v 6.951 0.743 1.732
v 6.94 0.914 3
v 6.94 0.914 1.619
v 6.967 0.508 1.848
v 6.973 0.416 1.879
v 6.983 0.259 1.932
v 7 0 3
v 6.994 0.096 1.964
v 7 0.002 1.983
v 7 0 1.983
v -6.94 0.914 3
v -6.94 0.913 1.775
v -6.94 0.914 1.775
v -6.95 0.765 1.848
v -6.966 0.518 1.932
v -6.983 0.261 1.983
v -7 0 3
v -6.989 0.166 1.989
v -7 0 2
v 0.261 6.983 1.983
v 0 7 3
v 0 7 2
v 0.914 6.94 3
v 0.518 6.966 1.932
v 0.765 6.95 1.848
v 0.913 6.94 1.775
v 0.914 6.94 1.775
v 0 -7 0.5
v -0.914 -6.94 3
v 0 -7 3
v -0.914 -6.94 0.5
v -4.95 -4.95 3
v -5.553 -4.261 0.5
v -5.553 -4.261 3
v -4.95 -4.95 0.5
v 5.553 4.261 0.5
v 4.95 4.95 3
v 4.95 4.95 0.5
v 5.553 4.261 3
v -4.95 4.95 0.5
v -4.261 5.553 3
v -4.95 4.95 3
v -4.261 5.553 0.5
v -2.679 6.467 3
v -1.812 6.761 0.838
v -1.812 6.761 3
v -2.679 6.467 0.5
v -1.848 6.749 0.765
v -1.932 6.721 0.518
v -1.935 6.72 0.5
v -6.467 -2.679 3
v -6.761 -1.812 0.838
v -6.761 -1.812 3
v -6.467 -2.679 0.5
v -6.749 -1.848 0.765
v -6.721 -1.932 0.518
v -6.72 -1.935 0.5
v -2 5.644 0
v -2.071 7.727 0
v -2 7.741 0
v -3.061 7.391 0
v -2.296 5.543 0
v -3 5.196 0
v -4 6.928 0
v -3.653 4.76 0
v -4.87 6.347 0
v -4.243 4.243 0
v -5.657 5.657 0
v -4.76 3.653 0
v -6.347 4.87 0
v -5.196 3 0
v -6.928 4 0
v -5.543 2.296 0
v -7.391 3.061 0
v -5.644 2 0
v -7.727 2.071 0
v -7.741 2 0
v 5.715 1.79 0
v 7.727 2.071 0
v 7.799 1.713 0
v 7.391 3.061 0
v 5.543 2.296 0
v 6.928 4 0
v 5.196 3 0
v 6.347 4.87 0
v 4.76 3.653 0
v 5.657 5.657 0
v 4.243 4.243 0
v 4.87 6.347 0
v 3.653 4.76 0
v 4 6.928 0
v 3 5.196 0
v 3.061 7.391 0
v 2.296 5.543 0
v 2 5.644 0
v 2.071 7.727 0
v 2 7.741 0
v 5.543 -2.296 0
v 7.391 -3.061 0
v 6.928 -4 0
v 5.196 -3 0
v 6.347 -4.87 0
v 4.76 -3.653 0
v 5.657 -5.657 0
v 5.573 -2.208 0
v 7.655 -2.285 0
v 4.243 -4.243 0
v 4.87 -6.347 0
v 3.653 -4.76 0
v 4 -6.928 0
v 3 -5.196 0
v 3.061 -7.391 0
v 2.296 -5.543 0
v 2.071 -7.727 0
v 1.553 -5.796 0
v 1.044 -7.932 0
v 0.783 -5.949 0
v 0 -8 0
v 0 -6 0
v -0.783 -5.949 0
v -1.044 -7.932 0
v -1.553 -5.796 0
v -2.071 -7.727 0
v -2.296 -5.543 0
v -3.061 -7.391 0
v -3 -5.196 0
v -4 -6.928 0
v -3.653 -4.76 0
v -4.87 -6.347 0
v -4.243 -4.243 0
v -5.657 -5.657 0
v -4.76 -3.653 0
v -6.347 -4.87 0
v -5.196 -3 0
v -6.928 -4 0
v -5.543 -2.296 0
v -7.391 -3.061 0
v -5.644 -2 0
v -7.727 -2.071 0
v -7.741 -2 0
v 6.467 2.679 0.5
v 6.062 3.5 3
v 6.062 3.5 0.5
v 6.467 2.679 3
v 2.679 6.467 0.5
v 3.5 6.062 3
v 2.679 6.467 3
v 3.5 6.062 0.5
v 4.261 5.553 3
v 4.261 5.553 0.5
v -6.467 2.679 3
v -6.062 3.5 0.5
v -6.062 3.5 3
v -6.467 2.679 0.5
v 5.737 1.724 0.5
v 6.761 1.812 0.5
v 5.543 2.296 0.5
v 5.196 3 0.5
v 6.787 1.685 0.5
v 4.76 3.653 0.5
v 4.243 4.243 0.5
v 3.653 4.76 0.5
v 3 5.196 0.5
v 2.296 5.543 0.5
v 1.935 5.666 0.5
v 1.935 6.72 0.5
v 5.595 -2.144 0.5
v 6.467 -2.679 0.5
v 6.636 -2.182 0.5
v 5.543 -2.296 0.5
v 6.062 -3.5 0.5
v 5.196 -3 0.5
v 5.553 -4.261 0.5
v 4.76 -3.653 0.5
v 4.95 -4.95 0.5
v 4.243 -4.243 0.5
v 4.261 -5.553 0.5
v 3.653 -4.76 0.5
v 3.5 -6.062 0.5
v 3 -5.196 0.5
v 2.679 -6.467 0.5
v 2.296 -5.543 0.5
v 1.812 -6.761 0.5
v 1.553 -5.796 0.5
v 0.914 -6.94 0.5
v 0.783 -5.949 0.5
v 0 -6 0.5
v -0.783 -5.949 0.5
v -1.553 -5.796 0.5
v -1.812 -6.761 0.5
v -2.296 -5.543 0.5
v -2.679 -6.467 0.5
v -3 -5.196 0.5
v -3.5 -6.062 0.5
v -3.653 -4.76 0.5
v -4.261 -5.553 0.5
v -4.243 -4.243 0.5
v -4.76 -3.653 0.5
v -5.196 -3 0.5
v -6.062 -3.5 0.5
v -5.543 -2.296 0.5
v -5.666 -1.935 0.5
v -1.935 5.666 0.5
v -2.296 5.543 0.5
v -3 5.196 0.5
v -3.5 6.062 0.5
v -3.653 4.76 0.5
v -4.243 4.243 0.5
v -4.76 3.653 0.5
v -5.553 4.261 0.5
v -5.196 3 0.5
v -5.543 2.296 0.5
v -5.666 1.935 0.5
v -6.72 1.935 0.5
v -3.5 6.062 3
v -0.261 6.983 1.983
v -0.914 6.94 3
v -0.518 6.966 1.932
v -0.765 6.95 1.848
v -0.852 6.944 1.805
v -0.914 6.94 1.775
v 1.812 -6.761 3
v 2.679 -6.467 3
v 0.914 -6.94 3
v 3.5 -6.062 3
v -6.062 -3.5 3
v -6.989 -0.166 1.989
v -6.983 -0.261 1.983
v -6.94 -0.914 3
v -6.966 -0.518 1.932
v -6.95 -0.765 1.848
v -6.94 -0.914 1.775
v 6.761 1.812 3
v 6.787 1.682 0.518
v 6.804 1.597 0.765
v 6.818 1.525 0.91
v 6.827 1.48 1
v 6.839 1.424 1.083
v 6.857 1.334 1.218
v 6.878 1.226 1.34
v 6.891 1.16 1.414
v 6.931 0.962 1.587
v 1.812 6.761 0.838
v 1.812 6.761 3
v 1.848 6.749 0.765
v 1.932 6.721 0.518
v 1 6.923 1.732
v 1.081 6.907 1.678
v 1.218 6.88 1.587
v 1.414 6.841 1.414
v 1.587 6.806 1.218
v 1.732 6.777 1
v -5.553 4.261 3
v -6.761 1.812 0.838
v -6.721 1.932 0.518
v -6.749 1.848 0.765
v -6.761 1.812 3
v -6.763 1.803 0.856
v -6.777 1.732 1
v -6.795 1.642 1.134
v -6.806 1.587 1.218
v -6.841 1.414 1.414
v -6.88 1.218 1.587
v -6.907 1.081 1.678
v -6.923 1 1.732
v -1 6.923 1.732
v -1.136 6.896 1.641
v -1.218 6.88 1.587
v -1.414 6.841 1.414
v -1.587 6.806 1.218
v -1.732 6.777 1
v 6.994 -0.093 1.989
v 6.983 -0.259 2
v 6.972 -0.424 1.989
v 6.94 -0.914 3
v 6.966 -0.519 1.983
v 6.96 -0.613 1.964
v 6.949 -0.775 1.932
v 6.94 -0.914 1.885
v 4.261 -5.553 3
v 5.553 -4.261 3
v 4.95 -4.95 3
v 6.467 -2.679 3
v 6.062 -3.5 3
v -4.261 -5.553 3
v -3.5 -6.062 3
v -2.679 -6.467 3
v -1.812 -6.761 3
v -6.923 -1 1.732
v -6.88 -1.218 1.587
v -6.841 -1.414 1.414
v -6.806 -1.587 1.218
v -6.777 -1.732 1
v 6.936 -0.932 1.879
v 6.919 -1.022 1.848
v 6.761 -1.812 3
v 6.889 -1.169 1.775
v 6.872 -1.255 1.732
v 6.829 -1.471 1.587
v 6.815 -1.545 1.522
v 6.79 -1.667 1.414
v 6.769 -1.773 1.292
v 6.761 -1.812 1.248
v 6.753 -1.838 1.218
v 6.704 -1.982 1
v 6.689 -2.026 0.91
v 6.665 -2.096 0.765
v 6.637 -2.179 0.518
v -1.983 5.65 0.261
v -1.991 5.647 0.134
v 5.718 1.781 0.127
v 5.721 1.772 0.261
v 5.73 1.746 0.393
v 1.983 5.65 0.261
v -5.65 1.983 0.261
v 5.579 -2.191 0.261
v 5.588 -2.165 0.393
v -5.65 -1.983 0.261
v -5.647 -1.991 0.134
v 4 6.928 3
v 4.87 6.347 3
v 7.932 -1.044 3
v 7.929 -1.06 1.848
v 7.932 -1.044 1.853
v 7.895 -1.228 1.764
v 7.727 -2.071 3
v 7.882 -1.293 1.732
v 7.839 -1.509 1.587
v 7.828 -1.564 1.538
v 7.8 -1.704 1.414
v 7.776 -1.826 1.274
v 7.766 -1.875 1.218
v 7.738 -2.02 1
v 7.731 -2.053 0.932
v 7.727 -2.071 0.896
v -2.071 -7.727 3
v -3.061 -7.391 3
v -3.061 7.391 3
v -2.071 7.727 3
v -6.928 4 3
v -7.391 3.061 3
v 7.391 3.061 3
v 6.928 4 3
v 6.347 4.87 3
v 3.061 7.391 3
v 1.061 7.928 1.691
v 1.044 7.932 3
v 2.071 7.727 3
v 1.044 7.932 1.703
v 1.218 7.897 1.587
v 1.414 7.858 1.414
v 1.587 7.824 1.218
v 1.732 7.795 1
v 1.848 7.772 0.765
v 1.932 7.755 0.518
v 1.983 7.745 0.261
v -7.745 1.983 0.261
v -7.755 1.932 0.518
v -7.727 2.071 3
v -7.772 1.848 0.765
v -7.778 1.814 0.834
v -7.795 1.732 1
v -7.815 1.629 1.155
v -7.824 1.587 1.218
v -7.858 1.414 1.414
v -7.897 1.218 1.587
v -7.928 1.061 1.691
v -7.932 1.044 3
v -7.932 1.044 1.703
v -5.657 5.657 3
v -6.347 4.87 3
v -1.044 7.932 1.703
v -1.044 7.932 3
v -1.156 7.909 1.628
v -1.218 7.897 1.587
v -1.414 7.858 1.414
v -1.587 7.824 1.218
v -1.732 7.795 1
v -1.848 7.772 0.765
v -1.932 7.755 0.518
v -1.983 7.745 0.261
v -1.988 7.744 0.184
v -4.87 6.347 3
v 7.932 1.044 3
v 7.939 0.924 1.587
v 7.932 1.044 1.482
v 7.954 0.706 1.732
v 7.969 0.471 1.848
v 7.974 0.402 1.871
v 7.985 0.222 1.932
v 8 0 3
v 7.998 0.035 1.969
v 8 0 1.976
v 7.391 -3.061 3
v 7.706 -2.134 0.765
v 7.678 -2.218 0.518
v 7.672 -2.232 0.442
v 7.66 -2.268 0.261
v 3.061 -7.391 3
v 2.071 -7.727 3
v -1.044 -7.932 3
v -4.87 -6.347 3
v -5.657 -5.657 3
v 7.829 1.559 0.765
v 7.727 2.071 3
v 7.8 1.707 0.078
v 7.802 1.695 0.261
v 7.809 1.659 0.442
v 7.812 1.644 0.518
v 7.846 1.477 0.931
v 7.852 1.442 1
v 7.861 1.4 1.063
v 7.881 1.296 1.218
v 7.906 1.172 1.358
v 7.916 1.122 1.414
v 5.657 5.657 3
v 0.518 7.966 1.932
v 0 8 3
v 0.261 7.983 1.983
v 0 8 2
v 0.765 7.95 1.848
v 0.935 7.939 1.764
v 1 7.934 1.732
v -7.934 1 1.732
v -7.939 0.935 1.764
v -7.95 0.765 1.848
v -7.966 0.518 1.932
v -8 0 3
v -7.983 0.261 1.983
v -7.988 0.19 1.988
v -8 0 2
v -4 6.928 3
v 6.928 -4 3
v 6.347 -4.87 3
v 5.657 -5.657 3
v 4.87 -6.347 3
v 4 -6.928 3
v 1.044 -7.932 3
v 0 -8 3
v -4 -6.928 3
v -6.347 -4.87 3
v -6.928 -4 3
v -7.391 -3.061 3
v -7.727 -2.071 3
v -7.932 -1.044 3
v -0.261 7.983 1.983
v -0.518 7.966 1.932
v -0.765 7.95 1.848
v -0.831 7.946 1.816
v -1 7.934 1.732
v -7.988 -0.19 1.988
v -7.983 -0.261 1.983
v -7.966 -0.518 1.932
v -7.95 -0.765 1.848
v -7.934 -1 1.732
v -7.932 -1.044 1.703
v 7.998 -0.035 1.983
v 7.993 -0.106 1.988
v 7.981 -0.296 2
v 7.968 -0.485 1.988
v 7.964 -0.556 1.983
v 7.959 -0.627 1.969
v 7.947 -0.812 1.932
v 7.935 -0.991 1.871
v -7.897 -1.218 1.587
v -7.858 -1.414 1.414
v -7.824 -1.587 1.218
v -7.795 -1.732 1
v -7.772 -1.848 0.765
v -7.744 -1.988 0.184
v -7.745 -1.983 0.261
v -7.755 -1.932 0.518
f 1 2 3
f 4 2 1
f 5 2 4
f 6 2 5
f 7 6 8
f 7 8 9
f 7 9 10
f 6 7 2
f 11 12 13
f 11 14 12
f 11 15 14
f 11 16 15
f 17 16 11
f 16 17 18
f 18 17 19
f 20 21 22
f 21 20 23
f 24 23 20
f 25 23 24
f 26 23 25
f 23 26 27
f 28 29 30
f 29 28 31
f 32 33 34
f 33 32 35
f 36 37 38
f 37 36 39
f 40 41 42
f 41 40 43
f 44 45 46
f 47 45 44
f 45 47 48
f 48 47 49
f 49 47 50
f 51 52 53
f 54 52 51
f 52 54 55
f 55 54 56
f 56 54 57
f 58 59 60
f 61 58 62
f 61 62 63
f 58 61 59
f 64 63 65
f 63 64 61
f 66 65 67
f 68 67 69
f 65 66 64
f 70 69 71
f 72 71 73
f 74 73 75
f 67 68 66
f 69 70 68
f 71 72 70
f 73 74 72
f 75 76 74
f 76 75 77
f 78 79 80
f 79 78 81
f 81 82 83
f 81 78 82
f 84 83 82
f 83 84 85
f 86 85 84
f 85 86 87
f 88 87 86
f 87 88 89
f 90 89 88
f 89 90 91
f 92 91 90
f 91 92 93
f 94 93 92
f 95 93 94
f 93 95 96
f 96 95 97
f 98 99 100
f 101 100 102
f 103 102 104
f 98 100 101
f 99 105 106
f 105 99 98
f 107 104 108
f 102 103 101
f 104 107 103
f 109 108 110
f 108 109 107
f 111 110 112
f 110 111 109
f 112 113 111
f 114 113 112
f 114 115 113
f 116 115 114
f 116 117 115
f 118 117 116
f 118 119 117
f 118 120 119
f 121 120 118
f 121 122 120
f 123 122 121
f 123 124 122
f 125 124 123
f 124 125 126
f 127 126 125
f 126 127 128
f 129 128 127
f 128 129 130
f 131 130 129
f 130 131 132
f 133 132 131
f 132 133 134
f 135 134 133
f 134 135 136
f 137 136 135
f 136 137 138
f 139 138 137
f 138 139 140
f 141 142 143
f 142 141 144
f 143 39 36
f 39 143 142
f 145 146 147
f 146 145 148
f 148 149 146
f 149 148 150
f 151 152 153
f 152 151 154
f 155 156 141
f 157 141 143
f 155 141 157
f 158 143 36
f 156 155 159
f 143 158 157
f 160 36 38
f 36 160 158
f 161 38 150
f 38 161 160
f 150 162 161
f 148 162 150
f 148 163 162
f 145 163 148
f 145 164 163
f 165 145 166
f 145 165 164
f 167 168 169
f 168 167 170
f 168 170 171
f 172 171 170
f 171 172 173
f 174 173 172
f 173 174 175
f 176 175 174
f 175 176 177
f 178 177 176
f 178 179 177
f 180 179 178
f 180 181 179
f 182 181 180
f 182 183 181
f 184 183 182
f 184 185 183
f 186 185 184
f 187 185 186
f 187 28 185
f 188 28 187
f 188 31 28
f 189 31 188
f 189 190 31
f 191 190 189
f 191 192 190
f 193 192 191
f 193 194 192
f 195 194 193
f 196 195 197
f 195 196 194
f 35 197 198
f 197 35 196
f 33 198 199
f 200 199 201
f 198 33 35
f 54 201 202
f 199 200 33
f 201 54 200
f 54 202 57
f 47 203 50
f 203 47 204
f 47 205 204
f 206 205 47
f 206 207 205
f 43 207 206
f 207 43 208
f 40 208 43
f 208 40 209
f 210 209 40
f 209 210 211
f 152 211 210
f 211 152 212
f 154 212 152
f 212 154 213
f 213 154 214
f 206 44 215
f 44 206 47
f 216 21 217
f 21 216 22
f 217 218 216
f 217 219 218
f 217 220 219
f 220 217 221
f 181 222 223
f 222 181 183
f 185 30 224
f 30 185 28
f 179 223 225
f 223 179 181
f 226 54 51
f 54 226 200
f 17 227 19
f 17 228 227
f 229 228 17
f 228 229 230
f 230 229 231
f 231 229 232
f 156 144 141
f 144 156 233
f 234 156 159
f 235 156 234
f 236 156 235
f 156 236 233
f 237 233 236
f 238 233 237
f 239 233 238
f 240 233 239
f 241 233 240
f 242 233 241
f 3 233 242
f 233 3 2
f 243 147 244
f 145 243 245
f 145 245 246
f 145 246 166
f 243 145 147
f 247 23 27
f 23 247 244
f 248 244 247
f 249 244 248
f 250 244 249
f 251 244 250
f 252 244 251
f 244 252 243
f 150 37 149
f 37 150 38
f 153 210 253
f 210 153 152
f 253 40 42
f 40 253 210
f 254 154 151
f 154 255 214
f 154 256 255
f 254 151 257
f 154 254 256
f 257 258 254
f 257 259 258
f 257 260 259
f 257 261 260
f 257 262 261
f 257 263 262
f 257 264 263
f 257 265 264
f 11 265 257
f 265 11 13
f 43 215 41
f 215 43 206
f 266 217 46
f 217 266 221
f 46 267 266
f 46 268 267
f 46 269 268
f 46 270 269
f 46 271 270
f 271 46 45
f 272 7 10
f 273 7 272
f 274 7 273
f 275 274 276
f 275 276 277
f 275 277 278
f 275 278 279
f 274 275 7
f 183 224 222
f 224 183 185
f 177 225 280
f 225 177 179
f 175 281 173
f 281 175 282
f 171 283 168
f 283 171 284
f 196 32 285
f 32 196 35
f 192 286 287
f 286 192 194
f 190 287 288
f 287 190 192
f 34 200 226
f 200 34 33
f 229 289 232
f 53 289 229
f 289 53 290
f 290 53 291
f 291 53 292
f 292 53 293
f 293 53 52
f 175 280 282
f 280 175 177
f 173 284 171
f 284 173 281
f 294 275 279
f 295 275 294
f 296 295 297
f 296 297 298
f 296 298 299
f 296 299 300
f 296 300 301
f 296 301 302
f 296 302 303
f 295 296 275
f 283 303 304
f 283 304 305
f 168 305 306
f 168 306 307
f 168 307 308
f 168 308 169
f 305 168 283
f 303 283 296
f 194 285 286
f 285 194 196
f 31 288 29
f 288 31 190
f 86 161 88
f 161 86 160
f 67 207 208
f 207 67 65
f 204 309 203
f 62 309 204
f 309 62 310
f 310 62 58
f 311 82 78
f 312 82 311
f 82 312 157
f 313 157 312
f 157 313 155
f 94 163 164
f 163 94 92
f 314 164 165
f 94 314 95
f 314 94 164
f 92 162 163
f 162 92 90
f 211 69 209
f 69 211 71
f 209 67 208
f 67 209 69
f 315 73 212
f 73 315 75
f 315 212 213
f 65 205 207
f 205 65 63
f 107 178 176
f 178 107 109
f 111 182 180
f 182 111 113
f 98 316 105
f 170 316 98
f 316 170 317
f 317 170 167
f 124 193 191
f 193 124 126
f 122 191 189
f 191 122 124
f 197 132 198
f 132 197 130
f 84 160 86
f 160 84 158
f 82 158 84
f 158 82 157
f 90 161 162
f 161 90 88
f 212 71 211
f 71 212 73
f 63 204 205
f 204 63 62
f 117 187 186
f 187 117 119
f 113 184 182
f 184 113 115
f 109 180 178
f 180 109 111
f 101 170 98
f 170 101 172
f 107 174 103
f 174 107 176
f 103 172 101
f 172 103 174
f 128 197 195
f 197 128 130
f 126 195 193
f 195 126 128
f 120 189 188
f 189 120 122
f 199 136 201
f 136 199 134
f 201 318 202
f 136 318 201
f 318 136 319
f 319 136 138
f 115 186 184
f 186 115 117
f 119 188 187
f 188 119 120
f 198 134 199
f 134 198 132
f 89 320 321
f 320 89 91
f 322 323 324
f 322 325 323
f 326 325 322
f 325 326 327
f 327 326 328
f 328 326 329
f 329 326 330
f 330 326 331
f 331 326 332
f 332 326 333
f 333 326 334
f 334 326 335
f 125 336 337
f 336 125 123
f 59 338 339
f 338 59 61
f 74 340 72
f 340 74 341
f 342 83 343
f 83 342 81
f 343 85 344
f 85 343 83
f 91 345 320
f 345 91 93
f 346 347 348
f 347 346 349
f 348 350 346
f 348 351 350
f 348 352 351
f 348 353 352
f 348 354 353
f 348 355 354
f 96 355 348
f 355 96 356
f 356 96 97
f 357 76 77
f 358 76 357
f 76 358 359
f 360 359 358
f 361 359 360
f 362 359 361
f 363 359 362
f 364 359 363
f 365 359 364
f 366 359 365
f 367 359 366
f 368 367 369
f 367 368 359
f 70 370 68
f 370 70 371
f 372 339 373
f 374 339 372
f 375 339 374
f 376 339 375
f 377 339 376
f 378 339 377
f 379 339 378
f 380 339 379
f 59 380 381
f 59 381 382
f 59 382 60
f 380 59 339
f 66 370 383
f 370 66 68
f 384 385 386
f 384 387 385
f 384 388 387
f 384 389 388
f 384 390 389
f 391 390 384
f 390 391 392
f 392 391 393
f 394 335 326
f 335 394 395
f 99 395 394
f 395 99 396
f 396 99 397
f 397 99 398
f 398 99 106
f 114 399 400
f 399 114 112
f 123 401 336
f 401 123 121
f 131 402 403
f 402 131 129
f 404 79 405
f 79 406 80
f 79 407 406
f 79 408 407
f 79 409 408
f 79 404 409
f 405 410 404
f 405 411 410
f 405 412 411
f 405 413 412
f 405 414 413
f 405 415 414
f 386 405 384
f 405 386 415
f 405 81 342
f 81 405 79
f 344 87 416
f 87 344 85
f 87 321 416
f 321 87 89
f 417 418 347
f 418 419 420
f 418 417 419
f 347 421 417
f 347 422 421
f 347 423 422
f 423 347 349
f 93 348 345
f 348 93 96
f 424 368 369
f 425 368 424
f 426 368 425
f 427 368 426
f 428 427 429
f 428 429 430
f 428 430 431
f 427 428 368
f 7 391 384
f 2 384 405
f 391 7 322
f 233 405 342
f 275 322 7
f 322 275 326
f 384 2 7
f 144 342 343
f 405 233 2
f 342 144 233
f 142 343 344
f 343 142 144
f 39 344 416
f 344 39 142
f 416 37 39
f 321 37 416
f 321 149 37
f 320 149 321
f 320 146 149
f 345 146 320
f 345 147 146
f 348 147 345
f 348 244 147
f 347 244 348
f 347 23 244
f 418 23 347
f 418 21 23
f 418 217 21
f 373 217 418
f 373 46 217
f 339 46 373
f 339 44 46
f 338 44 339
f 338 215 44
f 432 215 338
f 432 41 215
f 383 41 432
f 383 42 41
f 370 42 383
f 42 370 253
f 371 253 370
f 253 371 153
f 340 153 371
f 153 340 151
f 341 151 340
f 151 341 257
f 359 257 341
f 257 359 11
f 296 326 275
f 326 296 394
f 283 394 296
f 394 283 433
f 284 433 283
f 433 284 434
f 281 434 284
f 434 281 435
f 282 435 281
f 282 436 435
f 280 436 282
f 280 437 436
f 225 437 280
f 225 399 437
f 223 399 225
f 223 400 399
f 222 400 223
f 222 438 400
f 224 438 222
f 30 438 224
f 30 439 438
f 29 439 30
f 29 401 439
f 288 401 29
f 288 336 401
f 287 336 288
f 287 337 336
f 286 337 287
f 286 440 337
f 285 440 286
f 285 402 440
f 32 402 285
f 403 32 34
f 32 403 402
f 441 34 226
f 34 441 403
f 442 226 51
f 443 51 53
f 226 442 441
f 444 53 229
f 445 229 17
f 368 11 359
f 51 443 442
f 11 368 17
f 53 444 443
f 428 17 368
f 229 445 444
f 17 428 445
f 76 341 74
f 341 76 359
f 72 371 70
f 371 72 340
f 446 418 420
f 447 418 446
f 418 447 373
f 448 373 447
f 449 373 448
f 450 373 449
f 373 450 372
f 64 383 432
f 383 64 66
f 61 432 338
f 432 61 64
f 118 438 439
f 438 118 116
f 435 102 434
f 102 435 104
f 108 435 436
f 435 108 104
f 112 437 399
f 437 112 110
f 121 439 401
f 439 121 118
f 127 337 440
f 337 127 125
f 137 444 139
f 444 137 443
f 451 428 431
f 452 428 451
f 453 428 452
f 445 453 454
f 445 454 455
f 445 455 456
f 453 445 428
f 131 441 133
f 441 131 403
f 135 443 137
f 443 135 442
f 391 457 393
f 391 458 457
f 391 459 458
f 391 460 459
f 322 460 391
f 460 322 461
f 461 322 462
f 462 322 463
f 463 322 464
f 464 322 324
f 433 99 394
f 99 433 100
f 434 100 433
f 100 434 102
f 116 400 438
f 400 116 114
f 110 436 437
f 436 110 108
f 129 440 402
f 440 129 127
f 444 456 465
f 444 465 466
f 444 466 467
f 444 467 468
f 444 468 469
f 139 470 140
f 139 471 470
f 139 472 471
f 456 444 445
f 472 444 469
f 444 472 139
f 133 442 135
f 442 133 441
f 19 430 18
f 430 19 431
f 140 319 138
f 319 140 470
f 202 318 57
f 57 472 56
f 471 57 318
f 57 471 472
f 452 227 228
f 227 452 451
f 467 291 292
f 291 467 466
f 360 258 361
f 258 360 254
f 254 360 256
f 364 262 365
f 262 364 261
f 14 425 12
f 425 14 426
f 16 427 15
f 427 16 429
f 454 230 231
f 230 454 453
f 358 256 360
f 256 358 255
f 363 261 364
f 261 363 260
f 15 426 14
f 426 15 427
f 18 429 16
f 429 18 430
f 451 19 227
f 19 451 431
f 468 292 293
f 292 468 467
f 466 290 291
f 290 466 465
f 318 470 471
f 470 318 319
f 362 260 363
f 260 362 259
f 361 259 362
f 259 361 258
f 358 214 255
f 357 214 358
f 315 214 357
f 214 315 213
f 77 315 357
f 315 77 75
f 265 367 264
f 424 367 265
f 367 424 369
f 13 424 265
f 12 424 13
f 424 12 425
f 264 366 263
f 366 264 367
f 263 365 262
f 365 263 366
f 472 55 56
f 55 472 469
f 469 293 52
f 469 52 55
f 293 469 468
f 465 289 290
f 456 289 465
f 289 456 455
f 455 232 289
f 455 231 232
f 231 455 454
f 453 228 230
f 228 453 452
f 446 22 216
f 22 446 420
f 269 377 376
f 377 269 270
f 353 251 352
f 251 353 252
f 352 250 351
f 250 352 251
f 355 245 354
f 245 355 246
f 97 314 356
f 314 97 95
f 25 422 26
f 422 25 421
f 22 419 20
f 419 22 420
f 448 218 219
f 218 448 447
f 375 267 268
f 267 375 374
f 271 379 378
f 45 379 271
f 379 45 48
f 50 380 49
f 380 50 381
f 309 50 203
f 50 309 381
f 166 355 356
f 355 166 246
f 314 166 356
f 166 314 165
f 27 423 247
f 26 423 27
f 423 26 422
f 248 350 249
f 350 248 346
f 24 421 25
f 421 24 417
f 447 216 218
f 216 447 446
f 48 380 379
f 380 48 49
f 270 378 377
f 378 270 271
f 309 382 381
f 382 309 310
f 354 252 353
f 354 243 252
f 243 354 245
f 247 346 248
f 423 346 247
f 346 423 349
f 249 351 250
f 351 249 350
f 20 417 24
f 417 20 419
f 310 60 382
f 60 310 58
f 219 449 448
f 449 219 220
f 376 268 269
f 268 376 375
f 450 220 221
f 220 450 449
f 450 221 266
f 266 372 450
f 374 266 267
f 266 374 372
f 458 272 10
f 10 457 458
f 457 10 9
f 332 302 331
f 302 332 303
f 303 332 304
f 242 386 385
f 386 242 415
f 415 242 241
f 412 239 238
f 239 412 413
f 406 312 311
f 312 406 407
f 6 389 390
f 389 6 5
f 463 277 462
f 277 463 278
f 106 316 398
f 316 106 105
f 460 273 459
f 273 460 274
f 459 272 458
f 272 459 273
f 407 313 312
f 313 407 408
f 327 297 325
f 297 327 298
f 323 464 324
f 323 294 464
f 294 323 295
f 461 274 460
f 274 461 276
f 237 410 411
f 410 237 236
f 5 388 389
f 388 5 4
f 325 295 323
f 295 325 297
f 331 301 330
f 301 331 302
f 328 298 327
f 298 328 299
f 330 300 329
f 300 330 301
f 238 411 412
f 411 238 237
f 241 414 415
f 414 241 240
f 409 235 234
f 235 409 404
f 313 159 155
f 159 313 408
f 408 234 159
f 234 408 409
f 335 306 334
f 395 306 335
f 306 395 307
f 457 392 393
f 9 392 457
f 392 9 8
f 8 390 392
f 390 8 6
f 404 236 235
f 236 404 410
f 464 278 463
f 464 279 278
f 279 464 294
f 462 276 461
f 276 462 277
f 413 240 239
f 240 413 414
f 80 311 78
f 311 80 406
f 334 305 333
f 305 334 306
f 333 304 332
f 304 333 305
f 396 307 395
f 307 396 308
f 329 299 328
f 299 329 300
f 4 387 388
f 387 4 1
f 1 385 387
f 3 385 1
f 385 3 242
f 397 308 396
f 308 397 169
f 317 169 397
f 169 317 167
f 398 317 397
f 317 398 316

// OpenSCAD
// file: ../build_environments.scad
// build_environments.scad: modules to build level sections
//

module pool(diameter=10.0, wall_height=2.0, step_width=3.0, connections=[])
{
    difference() {
        union() {
        difference() {
            cylinder(h=0.5,r1=diameter+step_width,r2=diameter+step_width,$fn=48);
            translate([0,0,-0.1])
                cylinder(h=0.7,r1=diameter,r2=diameter,$fn=48);
        }
        difference() {
            cylinder(h=wall_height,r1=diameter+step_width+1.0,r2=diameter+step_width+1.0,$fn=48);
            translate([0,0,-0.1])
                cylinder(h=wall_height+0.2,r1=diameter+step_width,r2=diameter+step_width,$fn=48);
        }
        }
    
        for (c = connections)
        {
            rotate([0,90,0]) {
                angle = atan2(c[1],c[0]);
                rotate([-angle,0,0]) {
                    cylinder(h=diameter+5.0,r1=c[2],r2=c[2],$fn=48);
                }
            }
        }
    }
}

module straight(length=10.0, width=2.0, dy1=0.0, dy2=0.0, dz=0.0)
{
    dims = [0, 0, 0, 0, 0, (dz/length)];
    matrix = [
        [ 1, dims[0], dims[1], 0 ],
        [ dims[2], 1, dims[4], 0 ],
        [ dims[5], dims[3], 1, 0 ],
        [ 0, 0, 0, 1 ]
    ];
    multmatrix(matrix)
    difference() {
        translate([dy1,0,0])
        union() {
            rotate([0,90,0]) {
                difference() {
                    cylinder(h=(length-dy1-dy2),r1=width+1.0,r2=width+1.0,$fn=24);
                    translate([0,0,-0.1])
                        cylinder(h=(length-dy1-dy2+0.2),r1=width,r2=width,$fn=24);
                }
                difference() {
                    cylinder(h=1.0,r1=width+2.0,r2=width+2.0,$fn=24);
                    translate([0,0,-0.1])
                        cylinder(h=1.2,r1=width,r2=width,$fn=24);
                }
                translate([0,0,(length-dy1-dy2)-1.0]) {
                    difference() {
                        cylinder(h=1.0,r1=width+2.0,r2=width+2.0,$fn=24);
                        translate([0,0,-0.1])
                            cylinder(h=1.2,r1=width,r2=width,$fn=24);
                    }
                }
            }
        }
        translate([0,0,-(2*width+4.0)/2])
            cube([3*length,3*length,2*width+4.0],center=true);
    }
}

module curve(p0=[0,0], center=[0,0], dir=1, angle=0.0, width=2.0)
{
    radius = sqrt((p0[0]-center[0])*(p0[0]-center[0]) + (p0[1]-center[1])*(p0[1]-center[1]));
    if (dir == 0) {
        difference() {
            rotate([0,0,-90])
            difference() {
                rotate_extrude(angle = angle, convexity = 10, $fn=32)
                    translate([radius, 0, 0])
                        circle(r = width+1.0,$fn=24);
                rotate([0,0,-1.0])
                    rotate_extrude(angle = angle+2.0, convexity = 10, $fn=32)
                        translate([radius, 0, 0])
                            circle(r = width,$fn=24);
            }
            translate([0,0,-(2*width+4.0)/2])
                cube([5*radius,5*radius,2*width+4.0],center=true);
        }
    }
    else {
        difference() {
            rotate([0,0,90])
            difference() {
                rotate_extrude(angle = -angle, convexity = 10, $fn=32)
                    translate([radius, 0, 0])
                        circle(r = width+1.0,$fn=24);
                rotate([0,0,1.0])
                    rotate_extrude(angle = -angle-2.0, convexity = 10, $fn=32)
                        translate([radius, 0, 0])
                            circle(r = width,$fn=24);
            }
            translate([0,0,-(2*width+4.0)/2])
                cube([5*radius,5*radius,2*width+4.0],center=true);
        }
    }

}

// test pool
//pool(diameter=12.0000, wall_height=3.0000, step_width=3.0000, connections=[[0.0000,-26.0000,2.0000], [23.6074,0.0000,2.0000]]);

// test straight, slope
//straight(length=26.0000, width=2.0000, dy1=11.8322, dy2=6.7082, dz=0.0000);
//straight(length=29.1549, width=12.0000, dy1=0.0000, dy2=0.0000, dz=-15.0000);

// test curve
//curve(p0=[23.6074, 0.0000], center=[23.6074, 5.0000], dir=0, angle=60.1011, width=2.0000);
//curve(p0=[33.6426, 12.4219], center=[37.9771, 9.9295], dir=1, angle=120.4627, width=2.0000);
// main file
use <../build_environments.scad>;
pool(diameter=6.0000, wall_height=3.0000, step_width=1.0000, connections=[[-16.0000,0.0000,2.0000], [0.0000,16.0000,2.0000], [13.3312,-0.4937,2.0000]]);
